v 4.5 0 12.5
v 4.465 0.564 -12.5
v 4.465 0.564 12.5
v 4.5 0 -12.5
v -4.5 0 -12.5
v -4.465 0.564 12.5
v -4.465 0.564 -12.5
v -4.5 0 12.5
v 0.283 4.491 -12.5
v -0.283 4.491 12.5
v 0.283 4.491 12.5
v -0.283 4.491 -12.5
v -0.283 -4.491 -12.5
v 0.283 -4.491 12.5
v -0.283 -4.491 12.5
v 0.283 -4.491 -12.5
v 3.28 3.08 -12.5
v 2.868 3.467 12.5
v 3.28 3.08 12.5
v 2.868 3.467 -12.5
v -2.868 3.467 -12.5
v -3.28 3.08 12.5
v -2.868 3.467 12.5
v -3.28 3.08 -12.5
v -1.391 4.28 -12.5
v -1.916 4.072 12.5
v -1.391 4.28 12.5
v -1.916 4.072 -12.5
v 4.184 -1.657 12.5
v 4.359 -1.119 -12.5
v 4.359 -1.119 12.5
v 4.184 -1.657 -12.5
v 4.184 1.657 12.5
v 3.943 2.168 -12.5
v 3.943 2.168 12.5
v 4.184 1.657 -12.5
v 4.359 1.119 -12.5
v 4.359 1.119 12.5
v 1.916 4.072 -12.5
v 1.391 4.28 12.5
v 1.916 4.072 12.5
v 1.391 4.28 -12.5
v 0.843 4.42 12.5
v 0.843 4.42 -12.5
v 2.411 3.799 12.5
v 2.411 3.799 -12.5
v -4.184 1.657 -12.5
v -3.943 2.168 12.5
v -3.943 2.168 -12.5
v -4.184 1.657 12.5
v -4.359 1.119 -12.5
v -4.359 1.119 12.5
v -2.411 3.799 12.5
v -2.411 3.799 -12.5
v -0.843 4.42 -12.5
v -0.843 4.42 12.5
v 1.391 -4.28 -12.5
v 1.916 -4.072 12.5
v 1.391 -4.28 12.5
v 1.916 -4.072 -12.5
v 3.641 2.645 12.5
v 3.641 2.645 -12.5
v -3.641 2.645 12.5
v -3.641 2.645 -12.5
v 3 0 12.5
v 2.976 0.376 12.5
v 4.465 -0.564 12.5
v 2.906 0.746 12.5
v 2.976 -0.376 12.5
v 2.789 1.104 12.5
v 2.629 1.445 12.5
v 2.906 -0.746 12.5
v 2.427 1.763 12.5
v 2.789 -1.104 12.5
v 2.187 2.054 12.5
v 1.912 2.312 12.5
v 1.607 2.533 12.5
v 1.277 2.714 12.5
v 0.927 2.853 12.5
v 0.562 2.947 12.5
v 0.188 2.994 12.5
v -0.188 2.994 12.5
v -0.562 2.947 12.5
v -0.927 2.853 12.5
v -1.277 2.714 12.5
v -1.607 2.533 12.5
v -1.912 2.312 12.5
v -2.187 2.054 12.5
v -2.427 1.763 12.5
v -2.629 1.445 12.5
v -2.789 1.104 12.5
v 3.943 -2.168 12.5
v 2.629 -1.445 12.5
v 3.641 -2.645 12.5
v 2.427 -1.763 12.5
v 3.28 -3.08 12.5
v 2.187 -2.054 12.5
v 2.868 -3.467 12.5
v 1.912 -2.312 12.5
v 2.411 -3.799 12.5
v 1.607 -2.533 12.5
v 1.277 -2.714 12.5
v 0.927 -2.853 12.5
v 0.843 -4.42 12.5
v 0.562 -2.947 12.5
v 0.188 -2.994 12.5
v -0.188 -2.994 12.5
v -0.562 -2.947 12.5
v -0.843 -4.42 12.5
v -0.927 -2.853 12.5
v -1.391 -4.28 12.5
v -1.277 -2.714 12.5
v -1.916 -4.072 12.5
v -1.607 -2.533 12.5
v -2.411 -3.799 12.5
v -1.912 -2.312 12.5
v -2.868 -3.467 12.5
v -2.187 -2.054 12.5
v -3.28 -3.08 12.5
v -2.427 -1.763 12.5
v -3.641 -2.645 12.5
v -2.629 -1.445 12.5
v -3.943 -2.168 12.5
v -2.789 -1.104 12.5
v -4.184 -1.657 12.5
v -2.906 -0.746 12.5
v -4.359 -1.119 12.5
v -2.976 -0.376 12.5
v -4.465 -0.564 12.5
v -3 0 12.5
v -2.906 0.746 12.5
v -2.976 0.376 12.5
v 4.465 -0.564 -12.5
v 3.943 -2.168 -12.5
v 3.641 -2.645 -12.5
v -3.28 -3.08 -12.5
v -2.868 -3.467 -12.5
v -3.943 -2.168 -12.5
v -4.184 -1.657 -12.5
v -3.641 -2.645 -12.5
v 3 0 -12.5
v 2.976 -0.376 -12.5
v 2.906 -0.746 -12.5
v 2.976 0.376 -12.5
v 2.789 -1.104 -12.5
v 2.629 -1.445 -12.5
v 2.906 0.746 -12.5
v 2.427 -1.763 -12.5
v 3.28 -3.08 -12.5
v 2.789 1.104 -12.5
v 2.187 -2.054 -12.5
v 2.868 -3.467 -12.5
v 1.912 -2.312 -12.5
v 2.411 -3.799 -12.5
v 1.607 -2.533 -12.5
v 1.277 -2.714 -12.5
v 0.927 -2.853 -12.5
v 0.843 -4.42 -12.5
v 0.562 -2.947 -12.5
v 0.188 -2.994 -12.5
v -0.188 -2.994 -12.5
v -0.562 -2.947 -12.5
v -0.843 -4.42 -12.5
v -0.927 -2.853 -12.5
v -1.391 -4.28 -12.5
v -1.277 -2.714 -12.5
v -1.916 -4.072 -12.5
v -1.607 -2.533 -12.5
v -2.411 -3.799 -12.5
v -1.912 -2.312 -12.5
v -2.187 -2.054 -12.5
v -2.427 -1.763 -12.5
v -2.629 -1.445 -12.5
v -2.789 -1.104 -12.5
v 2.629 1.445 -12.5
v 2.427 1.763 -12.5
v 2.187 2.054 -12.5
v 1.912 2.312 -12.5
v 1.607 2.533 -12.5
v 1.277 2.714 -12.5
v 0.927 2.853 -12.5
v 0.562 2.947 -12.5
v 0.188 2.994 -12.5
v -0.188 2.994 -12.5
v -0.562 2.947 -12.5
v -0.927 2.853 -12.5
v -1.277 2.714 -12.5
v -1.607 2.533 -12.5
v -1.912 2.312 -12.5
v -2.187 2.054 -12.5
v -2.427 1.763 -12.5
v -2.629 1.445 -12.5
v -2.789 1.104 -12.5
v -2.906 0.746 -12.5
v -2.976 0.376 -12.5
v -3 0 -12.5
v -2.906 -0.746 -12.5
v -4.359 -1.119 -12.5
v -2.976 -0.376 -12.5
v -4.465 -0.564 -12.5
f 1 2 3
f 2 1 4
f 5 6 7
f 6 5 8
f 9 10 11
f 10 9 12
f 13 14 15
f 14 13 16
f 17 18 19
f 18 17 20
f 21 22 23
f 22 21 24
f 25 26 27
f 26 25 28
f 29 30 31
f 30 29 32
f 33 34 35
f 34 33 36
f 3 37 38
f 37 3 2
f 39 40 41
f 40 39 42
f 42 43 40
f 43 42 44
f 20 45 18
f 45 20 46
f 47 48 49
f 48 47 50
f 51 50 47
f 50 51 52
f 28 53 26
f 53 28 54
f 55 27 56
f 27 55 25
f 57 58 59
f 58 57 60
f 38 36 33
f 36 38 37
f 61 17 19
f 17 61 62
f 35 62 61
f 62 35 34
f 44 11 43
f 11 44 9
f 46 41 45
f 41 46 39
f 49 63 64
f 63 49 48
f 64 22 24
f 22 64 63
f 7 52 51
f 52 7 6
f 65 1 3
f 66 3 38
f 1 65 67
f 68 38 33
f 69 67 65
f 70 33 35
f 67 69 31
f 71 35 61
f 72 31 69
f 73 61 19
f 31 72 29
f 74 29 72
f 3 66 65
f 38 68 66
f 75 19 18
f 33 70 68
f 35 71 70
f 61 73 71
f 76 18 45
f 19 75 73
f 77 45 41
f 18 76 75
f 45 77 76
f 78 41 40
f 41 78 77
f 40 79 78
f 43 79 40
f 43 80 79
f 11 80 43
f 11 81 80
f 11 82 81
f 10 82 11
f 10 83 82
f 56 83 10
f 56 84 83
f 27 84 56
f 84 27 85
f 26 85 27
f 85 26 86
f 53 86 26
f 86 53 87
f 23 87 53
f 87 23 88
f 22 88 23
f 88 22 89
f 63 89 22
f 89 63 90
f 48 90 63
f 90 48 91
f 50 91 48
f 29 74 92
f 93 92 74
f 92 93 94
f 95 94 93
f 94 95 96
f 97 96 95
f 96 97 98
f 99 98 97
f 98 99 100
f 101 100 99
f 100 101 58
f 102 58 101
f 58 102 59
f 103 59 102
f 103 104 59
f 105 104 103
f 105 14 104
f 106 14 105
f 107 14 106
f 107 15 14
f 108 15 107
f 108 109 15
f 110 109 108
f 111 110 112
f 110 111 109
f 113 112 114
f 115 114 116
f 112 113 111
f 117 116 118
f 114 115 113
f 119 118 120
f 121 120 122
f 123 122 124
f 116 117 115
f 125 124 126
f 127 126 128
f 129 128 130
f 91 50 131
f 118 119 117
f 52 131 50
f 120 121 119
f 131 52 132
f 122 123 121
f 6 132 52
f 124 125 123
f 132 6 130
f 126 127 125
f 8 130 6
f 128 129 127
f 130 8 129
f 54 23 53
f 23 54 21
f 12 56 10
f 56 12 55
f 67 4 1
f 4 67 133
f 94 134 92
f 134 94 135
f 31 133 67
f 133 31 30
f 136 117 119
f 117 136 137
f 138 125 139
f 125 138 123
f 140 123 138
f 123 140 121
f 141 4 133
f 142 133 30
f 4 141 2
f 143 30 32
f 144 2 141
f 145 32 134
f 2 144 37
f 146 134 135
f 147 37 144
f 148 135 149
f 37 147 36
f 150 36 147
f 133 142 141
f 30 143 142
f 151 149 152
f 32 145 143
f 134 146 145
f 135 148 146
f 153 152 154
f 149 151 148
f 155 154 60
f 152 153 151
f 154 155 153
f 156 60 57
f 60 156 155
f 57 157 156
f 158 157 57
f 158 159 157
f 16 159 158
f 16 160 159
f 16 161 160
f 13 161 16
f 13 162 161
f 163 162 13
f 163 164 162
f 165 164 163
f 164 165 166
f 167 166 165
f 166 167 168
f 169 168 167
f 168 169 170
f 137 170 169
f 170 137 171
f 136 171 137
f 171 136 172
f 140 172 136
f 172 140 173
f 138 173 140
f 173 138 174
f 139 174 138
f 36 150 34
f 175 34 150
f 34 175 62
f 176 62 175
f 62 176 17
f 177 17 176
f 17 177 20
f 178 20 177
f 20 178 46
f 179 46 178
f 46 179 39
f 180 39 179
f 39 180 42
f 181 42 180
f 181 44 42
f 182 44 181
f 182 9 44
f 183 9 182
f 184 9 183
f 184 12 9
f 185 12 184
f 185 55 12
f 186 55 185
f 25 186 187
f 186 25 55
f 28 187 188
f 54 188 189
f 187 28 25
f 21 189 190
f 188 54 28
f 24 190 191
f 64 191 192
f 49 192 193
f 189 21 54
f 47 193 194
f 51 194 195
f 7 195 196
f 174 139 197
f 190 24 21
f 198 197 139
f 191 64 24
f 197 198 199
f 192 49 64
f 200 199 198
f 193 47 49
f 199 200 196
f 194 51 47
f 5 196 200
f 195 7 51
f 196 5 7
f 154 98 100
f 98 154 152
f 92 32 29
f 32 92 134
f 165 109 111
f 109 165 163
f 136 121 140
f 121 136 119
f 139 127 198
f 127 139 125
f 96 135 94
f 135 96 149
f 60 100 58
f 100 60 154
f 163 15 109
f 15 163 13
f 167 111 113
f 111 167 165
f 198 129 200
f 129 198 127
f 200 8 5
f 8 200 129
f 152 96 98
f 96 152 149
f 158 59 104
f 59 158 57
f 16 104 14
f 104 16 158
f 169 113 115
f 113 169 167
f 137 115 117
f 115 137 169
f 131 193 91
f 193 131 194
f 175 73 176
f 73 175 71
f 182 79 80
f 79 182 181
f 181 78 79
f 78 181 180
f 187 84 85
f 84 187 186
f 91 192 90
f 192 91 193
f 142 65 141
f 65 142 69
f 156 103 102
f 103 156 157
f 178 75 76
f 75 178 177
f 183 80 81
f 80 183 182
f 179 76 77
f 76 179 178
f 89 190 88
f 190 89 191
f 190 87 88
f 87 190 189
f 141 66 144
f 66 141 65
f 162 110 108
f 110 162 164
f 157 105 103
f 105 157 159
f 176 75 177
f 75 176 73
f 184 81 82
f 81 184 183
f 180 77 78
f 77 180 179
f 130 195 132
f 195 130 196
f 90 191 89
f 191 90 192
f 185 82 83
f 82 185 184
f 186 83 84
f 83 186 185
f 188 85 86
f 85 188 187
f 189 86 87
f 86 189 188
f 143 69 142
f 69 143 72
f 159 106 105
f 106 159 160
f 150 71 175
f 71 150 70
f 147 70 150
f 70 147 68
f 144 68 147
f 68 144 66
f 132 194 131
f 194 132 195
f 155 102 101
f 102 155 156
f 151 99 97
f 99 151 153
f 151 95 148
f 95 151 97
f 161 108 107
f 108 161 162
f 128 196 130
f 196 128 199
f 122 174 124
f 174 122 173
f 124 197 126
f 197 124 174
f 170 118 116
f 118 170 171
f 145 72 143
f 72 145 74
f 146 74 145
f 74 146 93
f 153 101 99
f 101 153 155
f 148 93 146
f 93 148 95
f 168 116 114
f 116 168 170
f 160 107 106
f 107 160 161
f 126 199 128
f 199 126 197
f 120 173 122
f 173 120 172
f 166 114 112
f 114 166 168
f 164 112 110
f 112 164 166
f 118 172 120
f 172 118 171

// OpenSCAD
$fn = 50;


difference() {
	union() {
		translate(v = [0, 0, -12.5000000000]) {
			cylinder(h = 25, r = 4.5000000000);
		}
	}
	union() {
		translate(v = [0, 0, -100.0000000000]) {
			cylinder(h = 200, r = 3);
		}
	}
}
